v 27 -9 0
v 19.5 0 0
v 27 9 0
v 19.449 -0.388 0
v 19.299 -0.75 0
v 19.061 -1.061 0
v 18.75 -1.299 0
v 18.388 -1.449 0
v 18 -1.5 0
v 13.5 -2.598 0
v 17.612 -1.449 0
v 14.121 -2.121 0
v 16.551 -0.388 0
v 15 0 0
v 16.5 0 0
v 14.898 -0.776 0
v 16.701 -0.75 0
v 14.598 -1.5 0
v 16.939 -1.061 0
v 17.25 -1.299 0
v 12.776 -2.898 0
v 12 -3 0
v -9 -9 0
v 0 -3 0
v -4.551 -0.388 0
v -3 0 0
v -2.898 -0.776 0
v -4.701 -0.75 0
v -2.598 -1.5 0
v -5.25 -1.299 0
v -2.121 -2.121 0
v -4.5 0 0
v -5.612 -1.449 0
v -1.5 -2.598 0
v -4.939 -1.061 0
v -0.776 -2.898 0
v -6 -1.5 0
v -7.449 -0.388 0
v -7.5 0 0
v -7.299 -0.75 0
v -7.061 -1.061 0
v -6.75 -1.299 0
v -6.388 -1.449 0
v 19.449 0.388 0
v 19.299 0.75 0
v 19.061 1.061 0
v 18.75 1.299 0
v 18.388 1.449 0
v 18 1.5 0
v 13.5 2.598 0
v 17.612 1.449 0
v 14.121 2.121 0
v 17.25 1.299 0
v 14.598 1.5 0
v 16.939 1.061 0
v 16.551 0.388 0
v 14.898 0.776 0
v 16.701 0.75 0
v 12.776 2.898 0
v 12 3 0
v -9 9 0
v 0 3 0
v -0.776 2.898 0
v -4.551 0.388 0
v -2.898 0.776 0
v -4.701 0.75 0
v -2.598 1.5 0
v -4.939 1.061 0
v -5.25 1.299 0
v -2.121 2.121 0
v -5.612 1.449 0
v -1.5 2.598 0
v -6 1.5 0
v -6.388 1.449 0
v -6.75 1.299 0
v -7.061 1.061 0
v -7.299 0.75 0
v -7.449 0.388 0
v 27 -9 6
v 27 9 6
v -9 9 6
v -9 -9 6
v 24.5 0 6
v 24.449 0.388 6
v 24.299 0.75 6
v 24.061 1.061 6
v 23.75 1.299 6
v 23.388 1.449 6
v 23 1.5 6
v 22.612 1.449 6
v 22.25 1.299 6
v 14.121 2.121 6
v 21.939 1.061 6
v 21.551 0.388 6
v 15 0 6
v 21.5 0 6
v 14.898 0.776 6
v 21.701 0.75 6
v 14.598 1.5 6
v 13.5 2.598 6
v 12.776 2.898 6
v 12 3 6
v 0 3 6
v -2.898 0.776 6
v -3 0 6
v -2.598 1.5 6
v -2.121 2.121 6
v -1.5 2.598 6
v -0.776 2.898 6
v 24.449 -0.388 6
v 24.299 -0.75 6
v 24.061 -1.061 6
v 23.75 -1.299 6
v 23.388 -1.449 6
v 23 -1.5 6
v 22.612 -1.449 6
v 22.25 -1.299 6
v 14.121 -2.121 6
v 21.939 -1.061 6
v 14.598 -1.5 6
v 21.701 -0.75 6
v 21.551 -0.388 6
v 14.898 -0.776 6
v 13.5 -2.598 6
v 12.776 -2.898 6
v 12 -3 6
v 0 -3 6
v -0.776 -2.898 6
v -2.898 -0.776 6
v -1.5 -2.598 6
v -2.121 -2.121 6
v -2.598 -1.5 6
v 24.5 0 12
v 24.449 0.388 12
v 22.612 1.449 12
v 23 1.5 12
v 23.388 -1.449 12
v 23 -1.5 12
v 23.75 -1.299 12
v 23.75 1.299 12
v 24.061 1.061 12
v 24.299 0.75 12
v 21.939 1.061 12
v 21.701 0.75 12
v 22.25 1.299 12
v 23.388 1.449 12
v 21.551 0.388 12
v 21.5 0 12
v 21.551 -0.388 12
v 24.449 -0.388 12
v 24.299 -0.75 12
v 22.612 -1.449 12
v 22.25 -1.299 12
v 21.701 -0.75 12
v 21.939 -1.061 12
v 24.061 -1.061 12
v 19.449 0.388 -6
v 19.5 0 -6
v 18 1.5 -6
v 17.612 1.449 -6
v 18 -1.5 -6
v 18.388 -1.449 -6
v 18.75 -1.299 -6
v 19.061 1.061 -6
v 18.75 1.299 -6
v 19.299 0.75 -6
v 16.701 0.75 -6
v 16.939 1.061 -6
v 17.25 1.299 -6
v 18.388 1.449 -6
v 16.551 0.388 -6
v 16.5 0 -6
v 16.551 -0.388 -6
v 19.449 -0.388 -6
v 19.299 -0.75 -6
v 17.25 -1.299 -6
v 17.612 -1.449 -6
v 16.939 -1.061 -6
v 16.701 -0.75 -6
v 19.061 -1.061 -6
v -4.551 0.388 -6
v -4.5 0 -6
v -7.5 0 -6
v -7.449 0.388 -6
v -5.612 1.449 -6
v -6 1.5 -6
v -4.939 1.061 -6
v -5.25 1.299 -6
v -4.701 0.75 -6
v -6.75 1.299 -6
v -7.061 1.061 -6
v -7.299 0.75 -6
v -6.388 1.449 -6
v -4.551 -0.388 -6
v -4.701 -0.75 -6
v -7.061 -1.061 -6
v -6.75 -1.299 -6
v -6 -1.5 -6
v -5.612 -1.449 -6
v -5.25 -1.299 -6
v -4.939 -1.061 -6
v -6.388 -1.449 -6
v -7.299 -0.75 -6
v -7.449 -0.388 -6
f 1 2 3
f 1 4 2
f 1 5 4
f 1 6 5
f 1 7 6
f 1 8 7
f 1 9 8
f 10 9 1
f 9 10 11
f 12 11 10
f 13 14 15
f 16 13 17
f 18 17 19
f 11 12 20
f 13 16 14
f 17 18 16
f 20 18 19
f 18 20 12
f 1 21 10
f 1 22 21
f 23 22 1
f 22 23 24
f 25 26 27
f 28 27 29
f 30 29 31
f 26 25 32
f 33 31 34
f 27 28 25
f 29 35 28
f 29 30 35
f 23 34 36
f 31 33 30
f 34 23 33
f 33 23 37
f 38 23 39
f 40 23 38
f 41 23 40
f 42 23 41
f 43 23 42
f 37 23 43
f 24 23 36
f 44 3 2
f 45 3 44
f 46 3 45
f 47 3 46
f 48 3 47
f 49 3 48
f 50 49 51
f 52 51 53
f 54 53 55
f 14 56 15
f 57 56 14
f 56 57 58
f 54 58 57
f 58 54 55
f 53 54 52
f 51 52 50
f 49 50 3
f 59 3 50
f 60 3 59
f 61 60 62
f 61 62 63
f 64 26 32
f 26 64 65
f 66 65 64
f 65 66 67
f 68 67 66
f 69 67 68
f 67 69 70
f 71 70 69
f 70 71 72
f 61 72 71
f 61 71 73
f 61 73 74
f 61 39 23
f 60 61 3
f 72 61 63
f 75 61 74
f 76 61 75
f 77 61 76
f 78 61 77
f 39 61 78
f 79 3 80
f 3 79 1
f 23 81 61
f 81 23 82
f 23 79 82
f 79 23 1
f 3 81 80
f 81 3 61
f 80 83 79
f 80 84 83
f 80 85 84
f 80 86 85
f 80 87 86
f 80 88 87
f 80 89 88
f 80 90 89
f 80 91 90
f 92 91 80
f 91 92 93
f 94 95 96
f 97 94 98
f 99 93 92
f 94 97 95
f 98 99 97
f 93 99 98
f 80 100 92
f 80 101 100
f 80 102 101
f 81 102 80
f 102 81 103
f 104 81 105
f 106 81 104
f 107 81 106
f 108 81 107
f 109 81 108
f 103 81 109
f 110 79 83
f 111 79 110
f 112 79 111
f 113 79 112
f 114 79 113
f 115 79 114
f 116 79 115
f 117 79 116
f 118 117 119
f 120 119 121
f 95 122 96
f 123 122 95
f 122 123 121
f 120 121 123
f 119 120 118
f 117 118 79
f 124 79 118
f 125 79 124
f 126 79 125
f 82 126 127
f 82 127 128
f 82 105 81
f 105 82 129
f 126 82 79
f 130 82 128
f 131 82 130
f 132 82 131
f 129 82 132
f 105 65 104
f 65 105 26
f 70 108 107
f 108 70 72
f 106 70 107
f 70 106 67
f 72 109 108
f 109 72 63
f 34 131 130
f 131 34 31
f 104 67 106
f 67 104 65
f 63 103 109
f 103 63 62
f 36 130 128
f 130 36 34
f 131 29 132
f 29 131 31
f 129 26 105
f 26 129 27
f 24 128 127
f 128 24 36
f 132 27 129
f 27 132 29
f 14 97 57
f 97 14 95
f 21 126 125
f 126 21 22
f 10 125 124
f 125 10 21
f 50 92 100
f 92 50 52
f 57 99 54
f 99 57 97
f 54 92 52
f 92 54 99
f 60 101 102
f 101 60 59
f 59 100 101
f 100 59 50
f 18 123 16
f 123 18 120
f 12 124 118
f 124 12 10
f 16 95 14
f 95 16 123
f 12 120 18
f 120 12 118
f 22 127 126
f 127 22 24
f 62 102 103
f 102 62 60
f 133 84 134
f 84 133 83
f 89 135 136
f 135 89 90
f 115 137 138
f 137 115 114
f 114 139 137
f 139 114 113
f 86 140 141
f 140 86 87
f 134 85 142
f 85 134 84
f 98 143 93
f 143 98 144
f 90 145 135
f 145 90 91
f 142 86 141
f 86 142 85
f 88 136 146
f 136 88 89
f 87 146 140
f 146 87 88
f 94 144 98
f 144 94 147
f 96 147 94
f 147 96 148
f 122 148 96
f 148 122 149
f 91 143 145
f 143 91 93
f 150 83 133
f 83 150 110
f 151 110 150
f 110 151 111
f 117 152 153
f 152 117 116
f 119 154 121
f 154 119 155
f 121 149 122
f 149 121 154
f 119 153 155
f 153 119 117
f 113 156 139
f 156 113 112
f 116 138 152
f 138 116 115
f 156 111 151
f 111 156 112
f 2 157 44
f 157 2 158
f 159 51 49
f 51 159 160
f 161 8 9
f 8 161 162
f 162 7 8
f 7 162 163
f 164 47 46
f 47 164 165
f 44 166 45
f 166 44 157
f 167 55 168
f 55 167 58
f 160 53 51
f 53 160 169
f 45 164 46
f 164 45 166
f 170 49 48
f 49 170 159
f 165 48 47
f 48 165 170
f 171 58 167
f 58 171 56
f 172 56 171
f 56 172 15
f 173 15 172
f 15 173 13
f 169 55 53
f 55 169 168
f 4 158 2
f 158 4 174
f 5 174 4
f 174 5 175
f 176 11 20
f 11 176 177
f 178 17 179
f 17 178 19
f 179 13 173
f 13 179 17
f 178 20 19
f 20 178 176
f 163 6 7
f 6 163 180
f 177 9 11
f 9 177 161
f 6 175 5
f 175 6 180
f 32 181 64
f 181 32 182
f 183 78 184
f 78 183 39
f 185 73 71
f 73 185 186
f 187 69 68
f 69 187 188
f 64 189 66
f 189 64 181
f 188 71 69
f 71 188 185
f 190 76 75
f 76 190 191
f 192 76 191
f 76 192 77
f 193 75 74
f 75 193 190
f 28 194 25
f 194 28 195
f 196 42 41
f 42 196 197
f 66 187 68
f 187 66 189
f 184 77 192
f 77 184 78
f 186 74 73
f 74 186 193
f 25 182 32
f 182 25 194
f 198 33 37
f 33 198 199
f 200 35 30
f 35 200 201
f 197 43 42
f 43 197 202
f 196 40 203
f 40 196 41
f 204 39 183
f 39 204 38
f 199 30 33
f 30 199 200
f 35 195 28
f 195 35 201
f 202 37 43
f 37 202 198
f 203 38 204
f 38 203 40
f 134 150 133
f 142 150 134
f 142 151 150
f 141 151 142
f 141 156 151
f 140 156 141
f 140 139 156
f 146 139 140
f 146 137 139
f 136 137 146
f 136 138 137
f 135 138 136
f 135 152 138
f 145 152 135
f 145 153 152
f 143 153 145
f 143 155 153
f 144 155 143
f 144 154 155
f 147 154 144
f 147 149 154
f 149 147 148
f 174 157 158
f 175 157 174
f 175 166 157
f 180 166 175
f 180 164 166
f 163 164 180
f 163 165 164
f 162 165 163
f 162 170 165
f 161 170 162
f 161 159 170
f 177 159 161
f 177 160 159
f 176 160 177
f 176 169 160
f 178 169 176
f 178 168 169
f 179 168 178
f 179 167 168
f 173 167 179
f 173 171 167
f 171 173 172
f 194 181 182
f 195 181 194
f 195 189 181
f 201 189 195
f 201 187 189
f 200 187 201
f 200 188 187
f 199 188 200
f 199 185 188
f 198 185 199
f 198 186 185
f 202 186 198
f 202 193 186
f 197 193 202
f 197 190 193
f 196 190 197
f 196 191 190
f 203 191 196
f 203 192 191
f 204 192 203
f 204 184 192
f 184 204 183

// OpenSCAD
include <../main.scad>
$holeflg = false;
$chamfflg = false;

UNIT_OF();
